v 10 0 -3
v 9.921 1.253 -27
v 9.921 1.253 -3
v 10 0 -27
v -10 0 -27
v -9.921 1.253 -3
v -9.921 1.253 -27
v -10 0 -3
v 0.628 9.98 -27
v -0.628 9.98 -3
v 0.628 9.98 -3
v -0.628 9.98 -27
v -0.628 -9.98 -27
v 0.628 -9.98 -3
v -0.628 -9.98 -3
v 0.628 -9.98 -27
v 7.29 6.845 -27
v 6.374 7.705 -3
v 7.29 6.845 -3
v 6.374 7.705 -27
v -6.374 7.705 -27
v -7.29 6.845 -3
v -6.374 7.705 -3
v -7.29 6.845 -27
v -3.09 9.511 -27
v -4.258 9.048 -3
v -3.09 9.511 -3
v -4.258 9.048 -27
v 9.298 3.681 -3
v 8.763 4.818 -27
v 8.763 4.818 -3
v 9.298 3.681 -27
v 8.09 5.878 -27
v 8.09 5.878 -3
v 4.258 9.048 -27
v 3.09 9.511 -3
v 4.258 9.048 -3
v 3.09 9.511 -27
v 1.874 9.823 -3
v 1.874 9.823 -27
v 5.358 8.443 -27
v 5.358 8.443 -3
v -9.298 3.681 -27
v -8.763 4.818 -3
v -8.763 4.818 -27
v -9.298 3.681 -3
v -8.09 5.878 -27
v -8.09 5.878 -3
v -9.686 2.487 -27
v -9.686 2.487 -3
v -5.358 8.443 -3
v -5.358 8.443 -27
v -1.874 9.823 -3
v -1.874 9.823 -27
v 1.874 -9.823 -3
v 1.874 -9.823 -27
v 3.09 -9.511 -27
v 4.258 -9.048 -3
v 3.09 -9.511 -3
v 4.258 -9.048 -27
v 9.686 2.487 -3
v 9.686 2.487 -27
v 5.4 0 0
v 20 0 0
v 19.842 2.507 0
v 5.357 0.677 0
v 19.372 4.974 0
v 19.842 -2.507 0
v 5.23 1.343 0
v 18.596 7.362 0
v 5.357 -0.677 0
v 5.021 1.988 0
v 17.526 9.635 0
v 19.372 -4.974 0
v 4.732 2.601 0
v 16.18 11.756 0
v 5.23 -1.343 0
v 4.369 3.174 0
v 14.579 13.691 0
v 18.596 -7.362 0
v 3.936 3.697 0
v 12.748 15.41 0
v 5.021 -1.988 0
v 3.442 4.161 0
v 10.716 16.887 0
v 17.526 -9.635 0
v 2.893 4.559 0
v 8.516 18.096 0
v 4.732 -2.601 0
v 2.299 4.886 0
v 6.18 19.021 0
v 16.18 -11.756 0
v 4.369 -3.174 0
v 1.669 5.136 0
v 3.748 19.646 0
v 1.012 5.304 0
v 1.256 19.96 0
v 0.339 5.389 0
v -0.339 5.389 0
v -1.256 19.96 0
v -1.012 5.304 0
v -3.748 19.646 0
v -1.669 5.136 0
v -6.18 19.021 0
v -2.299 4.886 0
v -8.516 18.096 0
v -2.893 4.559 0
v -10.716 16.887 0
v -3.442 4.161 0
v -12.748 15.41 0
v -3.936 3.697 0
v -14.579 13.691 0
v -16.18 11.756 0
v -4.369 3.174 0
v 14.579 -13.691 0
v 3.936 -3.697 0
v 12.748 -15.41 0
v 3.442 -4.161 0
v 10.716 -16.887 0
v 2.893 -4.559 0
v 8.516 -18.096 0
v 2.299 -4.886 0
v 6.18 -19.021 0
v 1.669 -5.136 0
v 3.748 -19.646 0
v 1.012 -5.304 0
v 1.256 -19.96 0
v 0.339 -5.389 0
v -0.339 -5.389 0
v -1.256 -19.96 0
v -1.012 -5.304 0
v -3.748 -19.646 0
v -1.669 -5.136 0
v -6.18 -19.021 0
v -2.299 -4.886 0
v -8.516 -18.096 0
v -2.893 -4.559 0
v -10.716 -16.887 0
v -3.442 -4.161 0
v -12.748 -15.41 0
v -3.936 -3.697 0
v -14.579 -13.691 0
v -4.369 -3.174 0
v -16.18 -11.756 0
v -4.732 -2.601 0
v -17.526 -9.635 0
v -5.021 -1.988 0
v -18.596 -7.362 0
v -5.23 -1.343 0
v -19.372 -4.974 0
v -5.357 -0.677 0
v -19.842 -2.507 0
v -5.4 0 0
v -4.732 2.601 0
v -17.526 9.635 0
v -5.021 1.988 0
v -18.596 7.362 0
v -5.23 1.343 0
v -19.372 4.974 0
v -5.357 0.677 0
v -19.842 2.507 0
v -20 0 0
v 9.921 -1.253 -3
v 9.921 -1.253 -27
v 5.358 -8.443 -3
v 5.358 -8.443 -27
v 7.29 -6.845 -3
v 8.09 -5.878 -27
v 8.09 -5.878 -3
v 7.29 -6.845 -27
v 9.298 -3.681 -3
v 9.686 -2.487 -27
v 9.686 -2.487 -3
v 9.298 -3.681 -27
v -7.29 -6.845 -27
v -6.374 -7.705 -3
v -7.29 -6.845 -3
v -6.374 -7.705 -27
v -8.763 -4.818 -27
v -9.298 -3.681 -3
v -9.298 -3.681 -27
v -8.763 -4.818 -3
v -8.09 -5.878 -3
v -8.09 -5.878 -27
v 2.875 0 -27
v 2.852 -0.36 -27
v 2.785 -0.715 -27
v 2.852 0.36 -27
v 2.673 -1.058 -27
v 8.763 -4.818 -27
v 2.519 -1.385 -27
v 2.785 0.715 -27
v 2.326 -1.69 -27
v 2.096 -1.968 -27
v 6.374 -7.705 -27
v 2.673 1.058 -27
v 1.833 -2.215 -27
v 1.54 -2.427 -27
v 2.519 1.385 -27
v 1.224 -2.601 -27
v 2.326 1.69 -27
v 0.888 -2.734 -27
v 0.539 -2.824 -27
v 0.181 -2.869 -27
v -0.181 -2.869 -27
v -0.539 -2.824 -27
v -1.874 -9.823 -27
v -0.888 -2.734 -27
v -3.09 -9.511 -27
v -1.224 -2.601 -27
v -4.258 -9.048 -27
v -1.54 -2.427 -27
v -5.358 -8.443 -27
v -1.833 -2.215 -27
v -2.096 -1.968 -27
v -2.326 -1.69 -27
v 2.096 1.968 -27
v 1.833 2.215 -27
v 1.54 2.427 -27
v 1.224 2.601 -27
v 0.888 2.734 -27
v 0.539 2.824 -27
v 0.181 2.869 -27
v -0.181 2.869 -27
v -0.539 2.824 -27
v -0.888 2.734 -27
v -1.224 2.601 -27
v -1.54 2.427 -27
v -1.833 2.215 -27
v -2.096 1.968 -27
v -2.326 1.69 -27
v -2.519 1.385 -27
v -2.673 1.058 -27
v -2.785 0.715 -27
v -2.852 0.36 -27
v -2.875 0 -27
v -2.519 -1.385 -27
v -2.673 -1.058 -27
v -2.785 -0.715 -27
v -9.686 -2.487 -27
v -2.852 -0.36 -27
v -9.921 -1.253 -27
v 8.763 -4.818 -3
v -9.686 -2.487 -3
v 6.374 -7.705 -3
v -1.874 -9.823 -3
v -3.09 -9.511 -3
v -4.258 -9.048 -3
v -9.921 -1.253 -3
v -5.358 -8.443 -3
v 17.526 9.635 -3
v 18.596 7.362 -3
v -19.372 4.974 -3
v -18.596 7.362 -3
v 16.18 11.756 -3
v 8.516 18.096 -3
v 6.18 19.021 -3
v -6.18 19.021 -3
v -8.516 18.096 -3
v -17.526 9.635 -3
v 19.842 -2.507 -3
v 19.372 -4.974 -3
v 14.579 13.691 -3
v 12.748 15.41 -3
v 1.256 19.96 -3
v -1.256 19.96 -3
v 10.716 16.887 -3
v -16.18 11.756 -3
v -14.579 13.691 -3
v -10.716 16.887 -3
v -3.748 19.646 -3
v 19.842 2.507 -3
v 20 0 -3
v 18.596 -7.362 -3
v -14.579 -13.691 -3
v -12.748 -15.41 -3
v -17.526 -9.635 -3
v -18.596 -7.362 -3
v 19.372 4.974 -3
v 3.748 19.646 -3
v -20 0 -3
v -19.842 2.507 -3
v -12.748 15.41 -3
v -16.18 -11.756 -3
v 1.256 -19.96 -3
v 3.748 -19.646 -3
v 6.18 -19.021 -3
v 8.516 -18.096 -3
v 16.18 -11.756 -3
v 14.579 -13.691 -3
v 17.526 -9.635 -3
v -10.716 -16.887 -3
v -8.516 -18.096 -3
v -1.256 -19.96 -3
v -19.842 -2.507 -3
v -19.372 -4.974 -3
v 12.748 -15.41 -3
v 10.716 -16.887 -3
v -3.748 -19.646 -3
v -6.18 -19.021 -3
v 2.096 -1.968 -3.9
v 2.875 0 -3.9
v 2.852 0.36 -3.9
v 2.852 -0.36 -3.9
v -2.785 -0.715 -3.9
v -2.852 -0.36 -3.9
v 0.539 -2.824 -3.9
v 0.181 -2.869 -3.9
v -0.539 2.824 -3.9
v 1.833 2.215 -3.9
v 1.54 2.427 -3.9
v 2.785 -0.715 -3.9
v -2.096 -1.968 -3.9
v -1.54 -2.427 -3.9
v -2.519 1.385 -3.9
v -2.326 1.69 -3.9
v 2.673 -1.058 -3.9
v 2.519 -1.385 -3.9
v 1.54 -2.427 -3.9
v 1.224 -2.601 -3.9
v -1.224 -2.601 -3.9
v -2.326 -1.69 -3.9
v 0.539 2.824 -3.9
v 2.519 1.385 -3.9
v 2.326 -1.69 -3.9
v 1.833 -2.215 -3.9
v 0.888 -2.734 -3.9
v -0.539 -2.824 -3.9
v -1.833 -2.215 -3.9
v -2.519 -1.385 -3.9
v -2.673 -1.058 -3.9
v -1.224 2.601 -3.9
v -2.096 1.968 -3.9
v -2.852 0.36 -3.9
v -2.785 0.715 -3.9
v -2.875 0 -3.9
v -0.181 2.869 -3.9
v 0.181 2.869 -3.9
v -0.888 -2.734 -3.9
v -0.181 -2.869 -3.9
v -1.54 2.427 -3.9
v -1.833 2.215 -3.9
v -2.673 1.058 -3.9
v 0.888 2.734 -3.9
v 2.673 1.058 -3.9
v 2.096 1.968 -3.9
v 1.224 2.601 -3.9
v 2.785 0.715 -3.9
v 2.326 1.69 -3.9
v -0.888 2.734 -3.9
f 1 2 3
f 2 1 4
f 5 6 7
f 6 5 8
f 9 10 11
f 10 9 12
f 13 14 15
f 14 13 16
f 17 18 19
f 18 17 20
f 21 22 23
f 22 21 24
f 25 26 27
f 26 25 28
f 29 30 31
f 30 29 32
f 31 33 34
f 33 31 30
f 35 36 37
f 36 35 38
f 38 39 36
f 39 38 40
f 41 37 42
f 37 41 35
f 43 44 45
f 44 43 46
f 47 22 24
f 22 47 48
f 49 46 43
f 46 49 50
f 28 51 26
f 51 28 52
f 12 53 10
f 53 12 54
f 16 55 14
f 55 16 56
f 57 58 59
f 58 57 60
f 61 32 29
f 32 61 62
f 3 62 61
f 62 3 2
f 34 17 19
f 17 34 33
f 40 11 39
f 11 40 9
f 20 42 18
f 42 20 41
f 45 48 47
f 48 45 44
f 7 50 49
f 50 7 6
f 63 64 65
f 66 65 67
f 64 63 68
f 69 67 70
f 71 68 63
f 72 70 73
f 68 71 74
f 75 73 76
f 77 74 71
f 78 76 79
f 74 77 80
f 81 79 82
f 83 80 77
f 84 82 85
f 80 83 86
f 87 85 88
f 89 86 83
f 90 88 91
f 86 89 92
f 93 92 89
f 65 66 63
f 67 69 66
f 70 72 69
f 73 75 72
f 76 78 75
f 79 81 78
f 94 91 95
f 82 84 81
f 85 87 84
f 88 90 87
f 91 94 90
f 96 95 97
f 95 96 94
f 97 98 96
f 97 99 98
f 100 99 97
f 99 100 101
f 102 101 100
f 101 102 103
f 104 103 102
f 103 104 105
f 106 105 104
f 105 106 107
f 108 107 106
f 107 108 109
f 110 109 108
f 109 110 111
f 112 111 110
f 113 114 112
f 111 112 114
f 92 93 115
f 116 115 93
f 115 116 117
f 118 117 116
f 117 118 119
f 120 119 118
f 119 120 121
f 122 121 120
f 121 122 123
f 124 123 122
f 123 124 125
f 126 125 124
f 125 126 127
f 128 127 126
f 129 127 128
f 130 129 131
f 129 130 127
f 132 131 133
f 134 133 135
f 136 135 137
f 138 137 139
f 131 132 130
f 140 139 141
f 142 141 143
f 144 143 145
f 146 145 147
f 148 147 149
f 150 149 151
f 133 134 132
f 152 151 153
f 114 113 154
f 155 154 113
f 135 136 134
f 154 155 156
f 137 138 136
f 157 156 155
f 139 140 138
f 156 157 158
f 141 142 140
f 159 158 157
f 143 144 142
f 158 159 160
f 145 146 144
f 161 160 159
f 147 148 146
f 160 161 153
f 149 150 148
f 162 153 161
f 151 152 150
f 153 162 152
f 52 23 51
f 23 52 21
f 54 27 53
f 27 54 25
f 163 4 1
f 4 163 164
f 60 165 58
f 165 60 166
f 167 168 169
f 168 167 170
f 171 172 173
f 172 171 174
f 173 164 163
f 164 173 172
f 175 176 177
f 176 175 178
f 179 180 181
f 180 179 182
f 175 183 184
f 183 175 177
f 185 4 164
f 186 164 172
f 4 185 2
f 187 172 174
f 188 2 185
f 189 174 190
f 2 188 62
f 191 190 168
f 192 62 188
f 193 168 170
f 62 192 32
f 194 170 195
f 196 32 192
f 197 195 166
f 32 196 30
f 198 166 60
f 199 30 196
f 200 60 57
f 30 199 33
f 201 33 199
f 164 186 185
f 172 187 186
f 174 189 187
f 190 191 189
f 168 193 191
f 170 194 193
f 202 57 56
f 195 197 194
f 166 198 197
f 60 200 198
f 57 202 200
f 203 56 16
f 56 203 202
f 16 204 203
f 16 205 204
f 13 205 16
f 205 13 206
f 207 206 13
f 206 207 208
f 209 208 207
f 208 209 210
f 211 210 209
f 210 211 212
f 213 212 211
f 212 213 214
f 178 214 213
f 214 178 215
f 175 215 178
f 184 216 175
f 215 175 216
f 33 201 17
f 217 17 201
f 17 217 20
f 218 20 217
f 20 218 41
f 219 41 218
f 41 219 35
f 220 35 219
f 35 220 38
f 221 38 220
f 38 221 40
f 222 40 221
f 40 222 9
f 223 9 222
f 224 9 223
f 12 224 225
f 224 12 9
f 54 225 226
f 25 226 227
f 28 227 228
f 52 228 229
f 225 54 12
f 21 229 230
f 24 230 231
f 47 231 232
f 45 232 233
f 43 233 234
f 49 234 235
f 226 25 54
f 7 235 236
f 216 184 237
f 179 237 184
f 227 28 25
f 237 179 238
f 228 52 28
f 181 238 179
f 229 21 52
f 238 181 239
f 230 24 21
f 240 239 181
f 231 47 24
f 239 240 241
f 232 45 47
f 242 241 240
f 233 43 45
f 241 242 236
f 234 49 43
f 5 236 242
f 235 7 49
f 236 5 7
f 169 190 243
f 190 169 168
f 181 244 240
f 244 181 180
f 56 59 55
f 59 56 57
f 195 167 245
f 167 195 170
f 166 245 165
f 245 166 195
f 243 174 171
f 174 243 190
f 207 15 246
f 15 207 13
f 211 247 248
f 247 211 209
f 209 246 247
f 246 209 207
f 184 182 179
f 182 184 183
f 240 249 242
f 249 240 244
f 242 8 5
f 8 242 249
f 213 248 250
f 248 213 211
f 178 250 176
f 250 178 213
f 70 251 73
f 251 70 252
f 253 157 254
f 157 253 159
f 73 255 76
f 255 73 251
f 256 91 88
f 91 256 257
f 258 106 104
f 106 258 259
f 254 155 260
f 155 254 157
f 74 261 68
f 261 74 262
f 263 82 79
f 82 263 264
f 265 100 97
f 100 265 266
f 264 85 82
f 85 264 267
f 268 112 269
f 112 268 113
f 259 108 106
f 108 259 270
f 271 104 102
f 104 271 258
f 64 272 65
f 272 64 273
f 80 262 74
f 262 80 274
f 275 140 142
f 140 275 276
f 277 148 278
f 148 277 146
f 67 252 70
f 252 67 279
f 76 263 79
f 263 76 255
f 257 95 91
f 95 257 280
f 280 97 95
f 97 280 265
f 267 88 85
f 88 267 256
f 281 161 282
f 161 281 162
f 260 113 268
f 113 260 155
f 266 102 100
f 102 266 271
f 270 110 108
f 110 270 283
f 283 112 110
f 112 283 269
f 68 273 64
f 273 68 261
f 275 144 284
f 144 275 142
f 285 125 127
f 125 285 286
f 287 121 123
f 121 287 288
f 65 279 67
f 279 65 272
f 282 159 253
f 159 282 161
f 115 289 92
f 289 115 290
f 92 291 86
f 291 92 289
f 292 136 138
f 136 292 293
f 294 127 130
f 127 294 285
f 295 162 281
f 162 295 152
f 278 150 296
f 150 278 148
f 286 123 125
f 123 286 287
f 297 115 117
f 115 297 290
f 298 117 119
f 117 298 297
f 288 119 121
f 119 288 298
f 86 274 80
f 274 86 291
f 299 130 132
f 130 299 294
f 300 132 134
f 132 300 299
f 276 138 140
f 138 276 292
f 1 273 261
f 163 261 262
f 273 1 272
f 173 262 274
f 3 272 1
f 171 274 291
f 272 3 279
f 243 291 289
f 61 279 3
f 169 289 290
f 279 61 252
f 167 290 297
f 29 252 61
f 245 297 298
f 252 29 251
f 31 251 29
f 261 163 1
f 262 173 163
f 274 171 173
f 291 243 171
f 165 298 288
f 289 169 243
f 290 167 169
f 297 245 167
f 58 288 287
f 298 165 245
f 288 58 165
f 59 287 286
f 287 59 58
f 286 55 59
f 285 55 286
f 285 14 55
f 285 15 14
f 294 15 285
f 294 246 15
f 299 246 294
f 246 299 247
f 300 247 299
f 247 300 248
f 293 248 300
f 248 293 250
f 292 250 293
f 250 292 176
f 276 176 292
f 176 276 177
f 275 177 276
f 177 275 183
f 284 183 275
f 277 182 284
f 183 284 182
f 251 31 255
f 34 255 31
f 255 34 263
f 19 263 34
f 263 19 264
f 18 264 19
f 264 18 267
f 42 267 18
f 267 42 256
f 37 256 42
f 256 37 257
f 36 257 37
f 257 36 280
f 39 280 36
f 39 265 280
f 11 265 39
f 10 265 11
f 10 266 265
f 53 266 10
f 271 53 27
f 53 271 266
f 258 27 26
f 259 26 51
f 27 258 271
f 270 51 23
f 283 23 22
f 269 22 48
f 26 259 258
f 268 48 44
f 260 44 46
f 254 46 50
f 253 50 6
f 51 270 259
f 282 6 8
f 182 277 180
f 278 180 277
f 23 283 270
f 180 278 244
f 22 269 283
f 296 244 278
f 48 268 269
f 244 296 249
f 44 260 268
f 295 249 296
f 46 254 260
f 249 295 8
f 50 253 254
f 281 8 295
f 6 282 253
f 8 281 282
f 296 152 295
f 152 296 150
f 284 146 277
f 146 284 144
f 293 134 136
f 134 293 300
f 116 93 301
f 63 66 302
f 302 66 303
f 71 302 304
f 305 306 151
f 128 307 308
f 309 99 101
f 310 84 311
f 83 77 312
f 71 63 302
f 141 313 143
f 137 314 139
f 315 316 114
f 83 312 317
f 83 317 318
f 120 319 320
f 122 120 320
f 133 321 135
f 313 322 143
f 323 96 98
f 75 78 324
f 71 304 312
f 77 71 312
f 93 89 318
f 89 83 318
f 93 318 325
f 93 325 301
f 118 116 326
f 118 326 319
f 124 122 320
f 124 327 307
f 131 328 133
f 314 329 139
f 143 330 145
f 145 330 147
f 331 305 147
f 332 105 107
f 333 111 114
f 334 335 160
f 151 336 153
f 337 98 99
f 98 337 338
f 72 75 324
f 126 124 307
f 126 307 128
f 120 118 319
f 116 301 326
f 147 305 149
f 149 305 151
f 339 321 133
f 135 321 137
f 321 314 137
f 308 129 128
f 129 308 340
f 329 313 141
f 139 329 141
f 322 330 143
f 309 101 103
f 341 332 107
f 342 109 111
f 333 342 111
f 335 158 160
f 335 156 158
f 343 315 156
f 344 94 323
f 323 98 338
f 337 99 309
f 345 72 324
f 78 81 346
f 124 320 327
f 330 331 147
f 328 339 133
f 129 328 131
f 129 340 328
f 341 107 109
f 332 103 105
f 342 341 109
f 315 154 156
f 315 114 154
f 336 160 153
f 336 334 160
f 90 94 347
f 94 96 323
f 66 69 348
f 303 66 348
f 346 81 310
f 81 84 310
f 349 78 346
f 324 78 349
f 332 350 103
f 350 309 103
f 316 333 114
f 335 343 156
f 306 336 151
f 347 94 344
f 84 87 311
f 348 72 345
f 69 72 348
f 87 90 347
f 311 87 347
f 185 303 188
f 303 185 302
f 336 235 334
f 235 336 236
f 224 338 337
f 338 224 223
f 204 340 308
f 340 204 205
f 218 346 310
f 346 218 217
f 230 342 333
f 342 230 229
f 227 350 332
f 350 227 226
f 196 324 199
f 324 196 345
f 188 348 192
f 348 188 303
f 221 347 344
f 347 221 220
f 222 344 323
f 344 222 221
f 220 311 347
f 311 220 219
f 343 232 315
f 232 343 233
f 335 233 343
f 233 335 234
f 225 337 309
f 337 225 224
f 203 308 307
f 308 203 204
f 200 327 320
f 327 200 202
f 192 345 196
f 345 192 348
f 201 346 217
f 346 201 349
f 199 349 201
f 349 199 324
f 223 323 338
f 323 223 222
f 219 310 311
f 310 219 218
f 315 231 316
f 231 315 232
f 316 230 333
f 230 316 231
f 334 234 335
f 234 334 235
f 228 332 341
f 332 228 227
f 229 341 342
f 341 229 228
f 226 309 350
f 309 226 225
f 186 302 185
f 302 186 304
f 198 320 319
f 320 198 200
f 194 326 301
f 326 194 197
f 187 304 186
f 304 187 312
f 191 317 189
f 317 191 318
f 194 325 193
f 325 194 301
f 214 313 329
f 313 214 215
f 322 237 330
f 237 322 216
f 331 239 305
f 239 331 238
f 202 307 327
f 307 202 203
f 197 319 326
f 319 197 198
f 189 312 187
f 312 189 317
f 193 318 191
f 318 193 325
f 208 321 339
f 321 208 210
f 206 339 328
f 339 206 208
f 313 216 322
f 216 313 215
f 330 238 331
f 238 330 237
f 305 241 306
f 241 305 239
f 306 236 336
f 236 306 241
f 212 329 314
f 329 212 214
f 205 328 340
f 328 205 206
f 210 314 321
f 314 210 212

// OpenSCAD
$fn = 50;


difference() {
	union() {
		translate(v = [0, 0, -27.0000000000]) {
			cylinder(h = 27, r = 10.0000000000);
		}
		translate(v = [0, 0, -3.0000000000]) {
			cylinder(h = 3, r = 20.0000000000);
		}
	}
	union() {
		translate(v = [0, 0, 0]) {
			rotate(a = [0, 0, 0]) {
				difference() {
					union() {
						#translate(v = [0, 0, -27.0000000000]) {
							cylinder(h = 27, r = 2.6000000000);
						}
						#translate(v = [0, 0, -3.9000000000]) {
							cylinder(h = 3.9000000000, r1 = 2.8750000000, r2 = 5.4000000000);
						}
						#translate(v = [0, 0, -27.0000000000]) {
							cylinder(h = 27, r = 2.8750000000);
						}
						#translate(v = [0, 0, -27.0000000000]) {
							cylinder(h = 27, r = 2.6000000000);
						}
					}
					union();
				}
			}
		}
	}
}
